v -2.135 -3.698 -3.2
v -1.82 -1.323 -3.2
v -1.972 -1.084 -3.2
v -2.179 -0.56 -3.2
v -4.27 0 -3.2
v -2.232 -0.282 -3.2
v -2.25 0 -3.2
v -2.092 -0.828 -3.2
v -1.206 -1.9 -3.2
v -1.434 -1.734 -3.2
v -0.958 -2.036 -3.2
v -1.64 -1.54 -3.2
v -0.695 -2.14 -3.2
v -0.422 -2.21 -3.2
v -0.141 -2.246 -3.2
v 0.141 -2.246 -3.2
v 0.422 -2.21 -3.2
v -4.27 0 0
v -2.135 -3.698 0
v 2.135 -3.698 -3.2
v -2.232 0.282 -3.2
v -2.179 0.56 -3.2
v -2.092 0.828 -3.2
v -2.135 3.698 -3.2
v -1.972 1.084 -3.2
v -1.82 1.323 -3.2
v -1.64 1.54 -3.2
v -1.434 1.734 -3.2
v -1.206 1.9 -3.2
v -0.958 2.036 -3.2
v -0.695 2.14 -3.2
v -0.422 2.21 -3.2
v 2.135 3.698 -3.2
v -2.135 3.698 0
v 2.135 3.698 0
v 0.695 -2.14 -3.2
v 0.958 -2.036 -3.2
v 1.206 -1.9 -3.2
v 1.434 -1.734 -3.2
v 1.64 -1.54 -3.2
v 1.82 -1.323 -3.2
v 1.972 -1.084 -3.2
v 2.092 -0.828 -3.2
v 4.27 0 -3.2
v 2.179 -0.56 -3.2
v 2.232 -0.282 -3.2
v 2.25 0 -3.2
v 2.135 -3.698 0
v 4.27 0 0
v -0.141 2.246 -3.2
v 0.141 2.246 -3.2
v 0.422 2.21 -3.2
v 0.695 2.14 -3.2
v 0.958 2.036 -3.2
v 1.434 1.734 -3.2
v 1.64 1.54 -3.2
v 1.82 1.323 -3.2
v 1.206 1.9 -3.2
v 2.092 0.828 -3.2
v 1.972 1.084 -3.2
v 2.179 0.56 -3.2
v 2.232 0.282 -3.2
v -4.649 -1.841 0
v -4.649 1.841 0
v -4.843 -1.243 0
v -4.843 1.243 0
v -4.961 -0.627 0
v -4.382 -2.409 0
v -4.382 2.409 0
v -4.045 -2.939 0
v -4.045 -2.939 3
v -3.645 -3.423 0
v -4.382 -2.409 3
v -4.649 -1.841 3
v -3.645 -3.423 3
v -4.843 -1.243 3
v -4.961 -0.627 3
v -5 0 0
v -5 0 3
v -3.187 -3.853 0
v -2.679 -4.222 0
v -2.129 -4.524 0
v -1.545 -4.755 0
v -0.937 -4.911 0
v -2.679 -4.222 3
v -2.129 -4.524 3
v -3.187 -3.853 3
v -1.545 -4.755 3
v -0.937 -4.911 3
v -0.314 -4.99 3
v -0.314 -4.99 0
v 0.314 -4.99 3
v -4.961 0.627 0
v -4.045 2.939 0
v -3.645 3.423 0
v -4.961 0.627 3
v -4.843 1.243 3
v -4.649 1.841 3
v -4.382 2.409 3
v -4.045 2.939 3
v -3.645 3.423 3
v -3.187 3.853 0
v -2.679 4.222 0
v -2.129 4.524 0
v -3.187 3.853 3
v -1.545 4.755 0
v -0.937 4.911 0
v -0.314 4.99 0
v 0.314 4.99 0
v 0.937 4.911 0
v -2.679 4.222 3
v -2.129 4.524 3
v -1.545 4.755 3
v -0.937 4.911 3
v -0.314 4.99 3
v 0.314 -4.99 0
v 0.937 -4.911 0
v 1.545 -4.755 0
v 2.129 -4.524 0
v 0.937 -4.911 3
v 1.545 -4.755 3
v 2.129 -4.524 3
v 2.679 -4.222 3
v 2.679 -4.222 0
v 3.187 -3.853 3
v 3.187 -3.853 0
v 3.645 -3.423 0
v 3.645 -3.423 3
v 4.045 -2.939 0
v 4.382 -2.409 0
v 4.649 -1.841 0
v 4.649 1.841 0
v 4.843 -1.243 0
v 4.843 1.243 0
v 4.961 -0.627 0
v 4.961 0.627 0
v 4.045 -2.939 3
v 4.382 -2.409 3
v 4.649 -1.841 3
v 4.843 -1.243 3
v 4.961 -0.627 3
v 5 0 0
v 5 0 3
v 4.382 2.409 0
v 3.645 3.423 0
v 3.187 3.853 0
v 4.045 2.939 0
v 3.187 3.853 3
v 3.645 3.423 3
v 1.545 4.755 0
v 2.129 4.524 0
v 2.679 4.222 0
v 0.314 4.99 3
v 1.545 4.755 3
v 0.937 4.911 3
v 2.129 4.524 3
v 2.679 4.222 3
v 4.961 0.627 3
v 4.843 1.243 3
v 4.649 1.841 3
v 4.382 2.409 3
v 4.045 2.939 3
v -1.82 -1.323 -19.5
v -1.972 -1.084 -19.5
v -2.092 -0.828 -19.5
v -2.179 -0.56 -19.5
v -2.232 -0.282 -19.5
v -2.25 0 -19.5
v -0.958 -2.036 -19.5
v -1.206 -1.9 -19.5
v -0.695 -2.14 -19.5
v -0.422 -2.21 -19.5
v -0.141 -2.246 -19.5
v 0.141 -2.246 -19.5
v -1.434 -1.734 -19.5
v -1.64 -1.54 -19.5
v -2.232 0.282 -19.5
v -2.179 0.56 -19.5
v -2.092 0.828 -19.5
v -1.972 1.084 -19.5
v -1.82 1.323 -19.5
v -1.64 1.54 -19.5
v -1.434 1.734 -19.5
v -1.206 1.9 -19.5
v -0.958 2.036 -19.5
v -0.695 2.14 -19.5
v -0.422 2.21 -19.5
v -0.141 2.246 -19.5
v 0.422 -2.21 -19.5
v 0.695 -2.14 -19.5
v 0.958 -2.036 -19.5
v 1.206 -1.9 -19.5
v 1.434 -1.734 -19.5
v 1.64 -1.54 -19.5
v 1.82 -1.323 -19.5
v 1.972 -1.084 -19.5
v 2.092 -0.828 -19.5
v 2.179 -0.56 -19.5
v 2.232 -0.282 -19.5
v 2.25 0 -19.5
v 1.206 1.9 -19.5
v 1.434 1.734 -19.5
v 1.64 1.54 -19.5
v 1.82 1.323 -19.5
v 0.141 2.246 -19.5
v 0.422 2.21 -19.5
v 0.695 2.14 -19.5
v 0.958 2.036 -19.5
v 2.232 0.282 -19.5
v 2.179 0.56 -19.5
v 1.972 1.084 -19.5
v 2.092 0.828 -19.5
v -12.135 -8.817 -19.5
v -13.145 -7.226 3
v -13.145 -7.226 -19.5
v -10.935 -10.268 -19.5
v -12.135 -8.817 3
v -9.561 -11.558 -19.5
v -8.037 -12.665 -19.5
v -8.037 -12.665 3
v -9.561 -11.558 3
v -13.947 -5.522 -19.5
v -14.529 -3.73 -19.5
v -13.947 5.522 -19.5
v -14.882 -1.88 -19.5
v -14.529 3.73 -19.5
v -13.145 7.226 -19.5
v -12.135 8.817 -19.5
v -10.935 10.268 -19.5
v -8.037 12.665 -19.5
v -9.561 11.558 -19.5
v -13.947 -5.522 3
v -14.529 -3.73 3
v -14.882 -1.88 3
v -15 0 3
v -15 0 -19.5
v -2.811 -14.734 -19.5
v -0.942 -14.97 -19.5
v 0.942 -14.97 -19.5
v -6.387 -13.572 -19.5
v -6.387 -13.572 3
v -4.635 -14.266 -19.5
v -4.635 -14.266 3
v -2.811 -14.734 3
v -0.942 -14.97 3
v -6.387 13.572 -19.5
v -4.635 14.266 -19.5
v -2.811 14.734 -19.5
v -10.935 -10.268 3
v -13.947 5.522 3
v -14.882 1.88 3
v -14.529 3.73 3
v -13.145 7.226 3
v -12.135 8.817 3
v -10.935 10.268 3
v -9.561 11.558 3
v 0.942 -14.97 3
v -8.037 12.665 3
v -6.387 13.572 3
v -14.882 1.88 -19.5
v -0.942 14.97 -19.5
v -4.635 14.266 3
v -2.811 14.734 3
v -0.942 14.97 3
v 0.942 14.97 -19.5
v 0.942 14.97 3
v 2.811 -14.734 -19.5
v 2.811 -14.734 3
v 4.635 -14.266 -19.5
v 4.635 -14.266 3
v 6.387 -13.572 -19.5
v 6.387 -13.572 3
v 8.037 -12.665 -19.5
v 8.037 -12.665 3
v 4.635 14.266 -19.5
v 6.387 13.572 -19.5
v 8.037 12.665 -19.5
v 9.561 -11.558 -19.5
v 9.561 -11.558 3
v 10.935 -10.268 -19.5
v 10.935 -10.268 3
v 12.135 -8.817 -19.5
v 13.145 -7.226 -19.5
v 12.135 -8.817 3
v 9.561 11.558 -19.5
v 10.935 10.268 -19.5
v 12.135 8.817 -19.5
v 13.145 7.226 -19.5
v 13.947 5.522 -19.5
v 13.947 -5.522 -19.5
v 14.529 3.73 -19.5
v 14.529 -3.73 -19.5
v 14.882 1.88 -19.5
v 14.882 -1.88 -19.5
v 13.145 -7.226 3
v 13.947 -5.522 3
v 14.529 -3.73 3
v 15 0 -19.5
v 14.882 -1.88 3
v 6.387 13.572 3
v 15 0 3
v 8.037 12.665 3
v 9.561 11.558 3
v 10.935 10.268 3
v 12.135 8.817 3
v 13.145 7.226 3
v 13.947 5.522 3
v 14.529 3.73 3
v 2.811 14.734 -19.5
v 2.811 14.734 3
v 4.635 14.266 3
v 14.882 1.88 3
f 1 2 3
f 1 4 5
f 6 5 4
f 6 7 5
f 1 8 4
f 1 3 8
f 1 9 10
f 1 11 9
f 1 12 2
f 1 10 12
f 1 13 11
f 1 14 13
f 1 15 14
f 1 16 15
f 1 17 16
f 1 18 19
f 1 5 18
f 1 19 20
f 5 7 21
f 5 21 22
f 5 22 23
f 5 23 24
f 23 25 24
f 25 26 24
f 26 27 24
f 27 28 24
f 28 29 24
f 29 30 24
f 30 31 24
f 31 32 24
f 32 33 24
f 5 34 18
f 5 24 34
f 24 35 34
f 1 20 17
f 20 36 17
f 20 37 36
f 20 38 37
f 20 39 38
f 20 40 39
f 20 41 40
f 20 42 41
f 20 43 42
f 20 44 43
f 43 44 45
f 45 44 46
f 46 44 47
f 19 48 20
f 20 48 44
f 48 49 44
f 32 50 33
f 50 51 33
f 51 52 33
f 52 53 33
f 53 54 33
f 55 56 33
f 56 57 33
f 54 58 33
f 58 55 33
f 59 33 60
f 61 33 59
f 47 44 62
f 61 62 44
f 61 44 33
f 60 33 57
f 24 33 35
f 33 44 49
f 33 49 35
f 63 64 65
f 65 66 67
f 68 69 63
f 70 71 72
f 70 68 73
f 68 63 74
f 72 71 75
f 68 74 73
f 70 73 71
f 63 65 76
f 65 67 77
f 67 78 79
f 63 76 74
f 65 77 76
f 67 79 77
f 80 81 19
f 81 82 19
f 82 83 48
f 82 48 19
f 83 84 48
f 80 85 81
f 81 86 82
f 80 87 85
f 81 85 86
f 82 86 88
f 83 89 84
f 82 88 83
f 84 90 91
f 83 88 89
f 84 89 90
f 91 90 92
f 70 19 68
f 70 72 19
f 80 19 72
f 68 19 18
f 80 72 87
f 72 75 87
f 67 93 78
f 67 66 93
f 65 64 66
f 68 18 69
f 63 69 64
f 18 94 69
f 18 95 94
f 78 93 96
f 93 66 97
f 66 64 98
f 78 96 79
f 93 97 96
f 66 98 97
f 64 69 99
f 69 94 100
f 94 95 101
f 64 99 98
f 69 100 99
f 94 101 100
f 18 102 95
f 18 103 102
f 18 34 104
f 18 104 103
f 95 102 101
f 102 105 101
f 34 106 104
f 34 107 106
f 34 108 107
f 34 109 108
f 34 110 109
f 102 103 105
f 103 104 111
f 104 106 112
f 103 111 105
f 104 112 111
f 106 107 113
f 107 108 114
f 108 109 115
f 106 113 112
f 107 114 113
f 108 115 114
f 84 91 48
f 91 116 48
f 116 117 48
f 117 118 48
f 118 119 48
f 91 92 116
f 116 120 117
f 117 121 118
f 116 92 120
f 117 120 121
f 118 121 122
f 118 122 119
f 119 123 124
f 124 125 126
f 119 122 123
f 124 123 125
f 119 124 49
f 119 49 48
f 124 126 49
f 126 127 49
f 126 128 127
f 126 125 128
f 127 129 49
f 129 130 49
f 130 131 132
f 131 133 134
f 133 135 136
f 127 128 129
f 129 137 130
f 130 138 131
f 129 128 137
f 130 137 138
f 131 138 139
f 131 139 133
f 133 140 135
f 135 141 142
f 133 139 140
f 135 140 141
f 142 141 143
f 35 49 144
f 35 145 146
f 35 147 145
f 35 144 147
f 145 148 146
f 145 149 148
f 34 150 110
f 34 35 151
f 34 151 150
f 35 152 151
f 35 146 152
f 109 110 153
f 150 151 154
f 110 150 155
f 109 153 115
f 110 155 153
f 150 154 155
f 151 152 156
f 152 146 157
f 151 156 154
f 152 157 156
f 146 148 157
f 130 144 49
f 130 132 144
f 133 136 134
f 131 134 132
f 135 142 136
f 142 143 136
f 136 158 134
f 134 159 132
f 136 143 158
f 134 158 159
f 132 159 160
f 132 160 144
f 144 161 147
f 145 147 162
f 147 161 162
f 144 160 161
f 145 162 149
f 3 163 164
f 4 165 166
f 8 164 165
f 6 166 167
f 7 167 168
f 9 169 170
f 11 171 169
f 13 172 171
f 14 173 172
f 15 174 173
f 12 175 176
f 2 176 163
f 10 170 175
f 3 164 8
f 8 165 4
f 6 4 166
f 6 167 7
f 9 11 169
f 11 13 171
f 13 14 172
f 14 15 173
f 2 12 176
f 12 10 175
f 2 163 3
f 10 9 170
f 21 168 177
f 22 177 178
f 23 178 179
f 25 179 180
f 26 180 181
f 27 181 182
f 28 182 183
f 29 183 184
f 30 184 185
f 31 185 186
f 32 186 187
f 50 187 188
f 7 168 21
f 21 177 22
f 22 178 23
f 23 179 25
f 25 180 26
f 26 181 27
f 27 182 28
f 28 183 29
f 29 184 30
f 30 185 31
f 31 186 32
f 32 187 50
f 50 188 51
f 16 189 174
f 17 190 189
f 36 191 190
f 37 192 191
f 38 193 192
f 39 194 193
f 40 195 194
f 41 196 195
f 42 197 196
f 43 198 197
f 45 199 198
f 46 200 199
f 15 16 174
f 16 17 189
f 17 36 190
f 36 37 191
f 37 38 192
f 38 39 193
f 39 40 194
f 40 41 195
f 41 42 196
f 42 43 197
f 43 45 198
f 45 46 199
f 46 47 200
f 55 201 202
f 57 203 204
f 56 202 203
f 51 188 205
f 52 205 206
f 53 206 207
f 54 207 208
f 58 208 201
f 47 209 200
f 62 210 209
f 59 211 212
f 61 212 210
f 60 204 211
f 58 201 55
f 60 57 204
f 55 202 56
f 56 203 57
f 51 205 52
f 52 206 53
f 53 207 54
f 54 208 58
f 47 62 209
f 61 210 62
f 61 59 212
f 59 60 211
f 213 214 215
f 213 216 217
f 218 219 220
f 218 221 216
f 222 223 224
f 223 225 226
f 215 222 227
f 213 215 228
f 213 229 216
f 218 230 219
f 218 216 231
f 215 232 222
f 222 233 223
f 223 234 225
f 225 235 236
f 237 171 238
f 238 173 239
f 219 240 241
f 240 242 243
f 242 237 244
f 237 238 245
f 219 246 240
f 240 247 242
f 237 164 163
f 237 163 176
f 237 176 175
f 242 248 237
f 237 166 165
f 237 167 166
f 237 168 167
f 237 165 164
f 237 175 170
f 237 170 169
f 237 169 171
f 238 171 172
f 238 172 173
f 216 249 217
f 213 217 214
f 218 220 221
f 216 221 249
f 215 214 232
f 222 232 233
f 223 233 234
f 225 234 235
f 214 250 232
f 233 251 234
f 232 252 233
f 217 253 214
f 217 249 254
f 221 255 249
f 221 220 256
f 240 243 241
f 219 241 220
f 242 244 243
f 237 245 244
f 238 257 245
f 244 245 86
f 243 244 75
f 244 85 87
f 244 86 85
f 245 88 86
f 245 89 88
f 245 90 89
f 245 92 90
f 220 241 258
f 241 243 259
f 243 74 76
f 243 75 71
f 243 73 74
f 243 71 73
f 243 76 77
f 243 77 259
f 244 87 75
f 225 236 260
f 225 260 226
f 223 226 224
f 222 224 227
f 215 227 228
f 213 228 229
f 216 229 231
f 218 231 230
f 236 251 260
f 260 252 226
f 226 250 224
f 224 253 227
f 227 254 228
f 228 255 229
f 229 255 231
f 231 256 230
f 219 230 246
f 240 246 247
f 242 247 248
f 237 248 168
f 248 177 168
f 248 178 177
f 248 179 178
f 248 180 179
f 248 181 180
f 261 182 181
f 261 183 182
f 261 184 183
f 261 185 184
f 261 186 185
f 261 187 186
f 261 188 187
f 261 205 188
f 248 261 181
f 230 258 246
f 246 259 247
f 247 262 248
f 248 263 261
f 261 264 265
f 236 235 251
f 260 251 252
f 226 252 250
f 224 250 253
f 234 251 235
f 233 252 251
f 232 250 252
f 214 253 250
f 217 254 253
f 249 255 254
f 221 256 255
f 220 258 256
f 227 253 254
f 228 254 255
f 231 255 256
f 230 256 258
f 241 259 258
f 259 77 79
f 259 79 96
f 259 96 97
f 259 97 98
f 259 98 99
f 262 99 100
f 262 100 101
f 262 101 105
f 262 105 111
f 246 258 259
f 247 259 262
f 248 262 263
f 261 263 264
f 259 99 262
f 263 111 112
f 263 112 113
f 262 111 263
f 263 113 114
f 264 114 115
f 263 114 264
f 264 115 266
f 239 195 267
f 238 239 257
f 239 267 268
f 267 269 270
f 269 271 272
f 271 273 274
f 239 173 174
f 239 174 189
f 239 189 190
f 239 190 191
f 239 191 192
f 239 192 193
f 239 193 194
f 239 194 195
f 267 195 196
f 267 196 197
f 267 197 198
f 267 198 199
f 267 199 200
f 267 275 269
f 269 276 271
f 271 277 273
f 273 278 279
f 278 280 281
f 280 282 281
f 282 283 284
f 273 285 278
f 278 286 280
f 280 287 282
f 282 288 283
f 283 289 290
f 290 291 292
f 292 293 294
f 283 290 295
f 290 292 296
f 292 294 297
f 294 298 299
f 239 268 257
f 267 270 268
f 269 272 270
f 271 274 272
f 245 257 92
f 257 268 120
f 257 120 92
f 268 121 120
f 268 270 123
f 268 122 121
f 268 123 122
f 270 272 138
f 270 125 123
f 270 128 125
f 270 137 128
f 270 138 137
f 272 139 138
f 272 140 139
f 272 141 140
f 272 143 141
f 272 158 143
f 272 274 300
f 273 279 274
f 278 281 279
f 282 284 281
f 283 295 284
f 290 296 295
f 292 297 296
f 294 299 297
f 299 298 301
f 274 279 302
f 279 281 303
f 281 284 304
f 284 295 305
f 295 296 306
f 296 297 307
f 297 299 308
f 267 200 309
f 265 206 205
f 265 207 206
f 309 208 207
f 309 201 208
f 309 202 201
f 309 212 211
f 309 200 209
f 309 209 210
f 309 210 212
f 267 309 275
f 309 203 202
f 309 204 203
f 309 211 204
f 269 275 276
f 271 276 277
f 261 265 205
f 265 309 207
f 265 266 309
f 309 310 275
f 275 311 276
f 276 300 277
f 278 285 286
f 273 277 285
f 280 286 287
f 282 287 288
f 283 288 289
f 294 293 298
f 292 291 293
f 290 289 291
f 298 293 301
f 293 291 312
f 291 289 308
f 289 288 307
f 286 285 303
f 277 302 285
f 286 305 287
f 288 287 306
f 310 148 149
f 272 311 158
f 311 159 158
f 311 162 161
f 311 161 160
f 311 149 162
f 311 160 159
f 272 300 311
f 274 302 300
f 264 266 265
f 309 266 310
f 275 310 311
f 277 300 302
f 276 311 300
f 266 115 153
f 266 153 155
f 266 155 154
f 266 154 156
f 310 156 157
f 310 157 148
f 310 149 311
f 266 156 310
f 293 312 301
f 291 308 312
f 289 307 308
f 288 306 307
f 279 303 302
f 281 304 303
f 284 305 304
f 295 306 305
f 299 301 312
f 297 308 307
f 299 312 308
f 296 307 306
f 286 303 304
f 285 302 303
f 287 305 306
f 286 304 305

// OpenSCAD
$fn = 50;

difference() {
	union() {
		translate(v = [0, 0, -19.5]) {
			cylinder(h = 22.5, r = 15.0);
		}
	}
	union() {
		translate(v = [0, 0, 0]) {
			rotate(a = [0, 0, 0]) {
				difference() {
					union() {
						translate(v = [0, 0, -3.2]) {
							linear_extrude(height = 3.2) {
								polygon(points = [[4.2698, 0.0], [2.1349000000000005, 3.697755269078796], [-2.134899999999999, 3.6977552690787965], [-4.2698, 5.228996902999369e-16], [-2.134900000000002, -3.6977552690787956], [2.1348999999999974, -3.697755269078798]]);
							}
						}
					}
					union();
				}
			}
		}
		#cylinder(h = 3, r = 5.0);
		#translate(v = [0, 0, -100.0]) {
			cylinder(h = 200, r = 2.25);
		}
	}
}
